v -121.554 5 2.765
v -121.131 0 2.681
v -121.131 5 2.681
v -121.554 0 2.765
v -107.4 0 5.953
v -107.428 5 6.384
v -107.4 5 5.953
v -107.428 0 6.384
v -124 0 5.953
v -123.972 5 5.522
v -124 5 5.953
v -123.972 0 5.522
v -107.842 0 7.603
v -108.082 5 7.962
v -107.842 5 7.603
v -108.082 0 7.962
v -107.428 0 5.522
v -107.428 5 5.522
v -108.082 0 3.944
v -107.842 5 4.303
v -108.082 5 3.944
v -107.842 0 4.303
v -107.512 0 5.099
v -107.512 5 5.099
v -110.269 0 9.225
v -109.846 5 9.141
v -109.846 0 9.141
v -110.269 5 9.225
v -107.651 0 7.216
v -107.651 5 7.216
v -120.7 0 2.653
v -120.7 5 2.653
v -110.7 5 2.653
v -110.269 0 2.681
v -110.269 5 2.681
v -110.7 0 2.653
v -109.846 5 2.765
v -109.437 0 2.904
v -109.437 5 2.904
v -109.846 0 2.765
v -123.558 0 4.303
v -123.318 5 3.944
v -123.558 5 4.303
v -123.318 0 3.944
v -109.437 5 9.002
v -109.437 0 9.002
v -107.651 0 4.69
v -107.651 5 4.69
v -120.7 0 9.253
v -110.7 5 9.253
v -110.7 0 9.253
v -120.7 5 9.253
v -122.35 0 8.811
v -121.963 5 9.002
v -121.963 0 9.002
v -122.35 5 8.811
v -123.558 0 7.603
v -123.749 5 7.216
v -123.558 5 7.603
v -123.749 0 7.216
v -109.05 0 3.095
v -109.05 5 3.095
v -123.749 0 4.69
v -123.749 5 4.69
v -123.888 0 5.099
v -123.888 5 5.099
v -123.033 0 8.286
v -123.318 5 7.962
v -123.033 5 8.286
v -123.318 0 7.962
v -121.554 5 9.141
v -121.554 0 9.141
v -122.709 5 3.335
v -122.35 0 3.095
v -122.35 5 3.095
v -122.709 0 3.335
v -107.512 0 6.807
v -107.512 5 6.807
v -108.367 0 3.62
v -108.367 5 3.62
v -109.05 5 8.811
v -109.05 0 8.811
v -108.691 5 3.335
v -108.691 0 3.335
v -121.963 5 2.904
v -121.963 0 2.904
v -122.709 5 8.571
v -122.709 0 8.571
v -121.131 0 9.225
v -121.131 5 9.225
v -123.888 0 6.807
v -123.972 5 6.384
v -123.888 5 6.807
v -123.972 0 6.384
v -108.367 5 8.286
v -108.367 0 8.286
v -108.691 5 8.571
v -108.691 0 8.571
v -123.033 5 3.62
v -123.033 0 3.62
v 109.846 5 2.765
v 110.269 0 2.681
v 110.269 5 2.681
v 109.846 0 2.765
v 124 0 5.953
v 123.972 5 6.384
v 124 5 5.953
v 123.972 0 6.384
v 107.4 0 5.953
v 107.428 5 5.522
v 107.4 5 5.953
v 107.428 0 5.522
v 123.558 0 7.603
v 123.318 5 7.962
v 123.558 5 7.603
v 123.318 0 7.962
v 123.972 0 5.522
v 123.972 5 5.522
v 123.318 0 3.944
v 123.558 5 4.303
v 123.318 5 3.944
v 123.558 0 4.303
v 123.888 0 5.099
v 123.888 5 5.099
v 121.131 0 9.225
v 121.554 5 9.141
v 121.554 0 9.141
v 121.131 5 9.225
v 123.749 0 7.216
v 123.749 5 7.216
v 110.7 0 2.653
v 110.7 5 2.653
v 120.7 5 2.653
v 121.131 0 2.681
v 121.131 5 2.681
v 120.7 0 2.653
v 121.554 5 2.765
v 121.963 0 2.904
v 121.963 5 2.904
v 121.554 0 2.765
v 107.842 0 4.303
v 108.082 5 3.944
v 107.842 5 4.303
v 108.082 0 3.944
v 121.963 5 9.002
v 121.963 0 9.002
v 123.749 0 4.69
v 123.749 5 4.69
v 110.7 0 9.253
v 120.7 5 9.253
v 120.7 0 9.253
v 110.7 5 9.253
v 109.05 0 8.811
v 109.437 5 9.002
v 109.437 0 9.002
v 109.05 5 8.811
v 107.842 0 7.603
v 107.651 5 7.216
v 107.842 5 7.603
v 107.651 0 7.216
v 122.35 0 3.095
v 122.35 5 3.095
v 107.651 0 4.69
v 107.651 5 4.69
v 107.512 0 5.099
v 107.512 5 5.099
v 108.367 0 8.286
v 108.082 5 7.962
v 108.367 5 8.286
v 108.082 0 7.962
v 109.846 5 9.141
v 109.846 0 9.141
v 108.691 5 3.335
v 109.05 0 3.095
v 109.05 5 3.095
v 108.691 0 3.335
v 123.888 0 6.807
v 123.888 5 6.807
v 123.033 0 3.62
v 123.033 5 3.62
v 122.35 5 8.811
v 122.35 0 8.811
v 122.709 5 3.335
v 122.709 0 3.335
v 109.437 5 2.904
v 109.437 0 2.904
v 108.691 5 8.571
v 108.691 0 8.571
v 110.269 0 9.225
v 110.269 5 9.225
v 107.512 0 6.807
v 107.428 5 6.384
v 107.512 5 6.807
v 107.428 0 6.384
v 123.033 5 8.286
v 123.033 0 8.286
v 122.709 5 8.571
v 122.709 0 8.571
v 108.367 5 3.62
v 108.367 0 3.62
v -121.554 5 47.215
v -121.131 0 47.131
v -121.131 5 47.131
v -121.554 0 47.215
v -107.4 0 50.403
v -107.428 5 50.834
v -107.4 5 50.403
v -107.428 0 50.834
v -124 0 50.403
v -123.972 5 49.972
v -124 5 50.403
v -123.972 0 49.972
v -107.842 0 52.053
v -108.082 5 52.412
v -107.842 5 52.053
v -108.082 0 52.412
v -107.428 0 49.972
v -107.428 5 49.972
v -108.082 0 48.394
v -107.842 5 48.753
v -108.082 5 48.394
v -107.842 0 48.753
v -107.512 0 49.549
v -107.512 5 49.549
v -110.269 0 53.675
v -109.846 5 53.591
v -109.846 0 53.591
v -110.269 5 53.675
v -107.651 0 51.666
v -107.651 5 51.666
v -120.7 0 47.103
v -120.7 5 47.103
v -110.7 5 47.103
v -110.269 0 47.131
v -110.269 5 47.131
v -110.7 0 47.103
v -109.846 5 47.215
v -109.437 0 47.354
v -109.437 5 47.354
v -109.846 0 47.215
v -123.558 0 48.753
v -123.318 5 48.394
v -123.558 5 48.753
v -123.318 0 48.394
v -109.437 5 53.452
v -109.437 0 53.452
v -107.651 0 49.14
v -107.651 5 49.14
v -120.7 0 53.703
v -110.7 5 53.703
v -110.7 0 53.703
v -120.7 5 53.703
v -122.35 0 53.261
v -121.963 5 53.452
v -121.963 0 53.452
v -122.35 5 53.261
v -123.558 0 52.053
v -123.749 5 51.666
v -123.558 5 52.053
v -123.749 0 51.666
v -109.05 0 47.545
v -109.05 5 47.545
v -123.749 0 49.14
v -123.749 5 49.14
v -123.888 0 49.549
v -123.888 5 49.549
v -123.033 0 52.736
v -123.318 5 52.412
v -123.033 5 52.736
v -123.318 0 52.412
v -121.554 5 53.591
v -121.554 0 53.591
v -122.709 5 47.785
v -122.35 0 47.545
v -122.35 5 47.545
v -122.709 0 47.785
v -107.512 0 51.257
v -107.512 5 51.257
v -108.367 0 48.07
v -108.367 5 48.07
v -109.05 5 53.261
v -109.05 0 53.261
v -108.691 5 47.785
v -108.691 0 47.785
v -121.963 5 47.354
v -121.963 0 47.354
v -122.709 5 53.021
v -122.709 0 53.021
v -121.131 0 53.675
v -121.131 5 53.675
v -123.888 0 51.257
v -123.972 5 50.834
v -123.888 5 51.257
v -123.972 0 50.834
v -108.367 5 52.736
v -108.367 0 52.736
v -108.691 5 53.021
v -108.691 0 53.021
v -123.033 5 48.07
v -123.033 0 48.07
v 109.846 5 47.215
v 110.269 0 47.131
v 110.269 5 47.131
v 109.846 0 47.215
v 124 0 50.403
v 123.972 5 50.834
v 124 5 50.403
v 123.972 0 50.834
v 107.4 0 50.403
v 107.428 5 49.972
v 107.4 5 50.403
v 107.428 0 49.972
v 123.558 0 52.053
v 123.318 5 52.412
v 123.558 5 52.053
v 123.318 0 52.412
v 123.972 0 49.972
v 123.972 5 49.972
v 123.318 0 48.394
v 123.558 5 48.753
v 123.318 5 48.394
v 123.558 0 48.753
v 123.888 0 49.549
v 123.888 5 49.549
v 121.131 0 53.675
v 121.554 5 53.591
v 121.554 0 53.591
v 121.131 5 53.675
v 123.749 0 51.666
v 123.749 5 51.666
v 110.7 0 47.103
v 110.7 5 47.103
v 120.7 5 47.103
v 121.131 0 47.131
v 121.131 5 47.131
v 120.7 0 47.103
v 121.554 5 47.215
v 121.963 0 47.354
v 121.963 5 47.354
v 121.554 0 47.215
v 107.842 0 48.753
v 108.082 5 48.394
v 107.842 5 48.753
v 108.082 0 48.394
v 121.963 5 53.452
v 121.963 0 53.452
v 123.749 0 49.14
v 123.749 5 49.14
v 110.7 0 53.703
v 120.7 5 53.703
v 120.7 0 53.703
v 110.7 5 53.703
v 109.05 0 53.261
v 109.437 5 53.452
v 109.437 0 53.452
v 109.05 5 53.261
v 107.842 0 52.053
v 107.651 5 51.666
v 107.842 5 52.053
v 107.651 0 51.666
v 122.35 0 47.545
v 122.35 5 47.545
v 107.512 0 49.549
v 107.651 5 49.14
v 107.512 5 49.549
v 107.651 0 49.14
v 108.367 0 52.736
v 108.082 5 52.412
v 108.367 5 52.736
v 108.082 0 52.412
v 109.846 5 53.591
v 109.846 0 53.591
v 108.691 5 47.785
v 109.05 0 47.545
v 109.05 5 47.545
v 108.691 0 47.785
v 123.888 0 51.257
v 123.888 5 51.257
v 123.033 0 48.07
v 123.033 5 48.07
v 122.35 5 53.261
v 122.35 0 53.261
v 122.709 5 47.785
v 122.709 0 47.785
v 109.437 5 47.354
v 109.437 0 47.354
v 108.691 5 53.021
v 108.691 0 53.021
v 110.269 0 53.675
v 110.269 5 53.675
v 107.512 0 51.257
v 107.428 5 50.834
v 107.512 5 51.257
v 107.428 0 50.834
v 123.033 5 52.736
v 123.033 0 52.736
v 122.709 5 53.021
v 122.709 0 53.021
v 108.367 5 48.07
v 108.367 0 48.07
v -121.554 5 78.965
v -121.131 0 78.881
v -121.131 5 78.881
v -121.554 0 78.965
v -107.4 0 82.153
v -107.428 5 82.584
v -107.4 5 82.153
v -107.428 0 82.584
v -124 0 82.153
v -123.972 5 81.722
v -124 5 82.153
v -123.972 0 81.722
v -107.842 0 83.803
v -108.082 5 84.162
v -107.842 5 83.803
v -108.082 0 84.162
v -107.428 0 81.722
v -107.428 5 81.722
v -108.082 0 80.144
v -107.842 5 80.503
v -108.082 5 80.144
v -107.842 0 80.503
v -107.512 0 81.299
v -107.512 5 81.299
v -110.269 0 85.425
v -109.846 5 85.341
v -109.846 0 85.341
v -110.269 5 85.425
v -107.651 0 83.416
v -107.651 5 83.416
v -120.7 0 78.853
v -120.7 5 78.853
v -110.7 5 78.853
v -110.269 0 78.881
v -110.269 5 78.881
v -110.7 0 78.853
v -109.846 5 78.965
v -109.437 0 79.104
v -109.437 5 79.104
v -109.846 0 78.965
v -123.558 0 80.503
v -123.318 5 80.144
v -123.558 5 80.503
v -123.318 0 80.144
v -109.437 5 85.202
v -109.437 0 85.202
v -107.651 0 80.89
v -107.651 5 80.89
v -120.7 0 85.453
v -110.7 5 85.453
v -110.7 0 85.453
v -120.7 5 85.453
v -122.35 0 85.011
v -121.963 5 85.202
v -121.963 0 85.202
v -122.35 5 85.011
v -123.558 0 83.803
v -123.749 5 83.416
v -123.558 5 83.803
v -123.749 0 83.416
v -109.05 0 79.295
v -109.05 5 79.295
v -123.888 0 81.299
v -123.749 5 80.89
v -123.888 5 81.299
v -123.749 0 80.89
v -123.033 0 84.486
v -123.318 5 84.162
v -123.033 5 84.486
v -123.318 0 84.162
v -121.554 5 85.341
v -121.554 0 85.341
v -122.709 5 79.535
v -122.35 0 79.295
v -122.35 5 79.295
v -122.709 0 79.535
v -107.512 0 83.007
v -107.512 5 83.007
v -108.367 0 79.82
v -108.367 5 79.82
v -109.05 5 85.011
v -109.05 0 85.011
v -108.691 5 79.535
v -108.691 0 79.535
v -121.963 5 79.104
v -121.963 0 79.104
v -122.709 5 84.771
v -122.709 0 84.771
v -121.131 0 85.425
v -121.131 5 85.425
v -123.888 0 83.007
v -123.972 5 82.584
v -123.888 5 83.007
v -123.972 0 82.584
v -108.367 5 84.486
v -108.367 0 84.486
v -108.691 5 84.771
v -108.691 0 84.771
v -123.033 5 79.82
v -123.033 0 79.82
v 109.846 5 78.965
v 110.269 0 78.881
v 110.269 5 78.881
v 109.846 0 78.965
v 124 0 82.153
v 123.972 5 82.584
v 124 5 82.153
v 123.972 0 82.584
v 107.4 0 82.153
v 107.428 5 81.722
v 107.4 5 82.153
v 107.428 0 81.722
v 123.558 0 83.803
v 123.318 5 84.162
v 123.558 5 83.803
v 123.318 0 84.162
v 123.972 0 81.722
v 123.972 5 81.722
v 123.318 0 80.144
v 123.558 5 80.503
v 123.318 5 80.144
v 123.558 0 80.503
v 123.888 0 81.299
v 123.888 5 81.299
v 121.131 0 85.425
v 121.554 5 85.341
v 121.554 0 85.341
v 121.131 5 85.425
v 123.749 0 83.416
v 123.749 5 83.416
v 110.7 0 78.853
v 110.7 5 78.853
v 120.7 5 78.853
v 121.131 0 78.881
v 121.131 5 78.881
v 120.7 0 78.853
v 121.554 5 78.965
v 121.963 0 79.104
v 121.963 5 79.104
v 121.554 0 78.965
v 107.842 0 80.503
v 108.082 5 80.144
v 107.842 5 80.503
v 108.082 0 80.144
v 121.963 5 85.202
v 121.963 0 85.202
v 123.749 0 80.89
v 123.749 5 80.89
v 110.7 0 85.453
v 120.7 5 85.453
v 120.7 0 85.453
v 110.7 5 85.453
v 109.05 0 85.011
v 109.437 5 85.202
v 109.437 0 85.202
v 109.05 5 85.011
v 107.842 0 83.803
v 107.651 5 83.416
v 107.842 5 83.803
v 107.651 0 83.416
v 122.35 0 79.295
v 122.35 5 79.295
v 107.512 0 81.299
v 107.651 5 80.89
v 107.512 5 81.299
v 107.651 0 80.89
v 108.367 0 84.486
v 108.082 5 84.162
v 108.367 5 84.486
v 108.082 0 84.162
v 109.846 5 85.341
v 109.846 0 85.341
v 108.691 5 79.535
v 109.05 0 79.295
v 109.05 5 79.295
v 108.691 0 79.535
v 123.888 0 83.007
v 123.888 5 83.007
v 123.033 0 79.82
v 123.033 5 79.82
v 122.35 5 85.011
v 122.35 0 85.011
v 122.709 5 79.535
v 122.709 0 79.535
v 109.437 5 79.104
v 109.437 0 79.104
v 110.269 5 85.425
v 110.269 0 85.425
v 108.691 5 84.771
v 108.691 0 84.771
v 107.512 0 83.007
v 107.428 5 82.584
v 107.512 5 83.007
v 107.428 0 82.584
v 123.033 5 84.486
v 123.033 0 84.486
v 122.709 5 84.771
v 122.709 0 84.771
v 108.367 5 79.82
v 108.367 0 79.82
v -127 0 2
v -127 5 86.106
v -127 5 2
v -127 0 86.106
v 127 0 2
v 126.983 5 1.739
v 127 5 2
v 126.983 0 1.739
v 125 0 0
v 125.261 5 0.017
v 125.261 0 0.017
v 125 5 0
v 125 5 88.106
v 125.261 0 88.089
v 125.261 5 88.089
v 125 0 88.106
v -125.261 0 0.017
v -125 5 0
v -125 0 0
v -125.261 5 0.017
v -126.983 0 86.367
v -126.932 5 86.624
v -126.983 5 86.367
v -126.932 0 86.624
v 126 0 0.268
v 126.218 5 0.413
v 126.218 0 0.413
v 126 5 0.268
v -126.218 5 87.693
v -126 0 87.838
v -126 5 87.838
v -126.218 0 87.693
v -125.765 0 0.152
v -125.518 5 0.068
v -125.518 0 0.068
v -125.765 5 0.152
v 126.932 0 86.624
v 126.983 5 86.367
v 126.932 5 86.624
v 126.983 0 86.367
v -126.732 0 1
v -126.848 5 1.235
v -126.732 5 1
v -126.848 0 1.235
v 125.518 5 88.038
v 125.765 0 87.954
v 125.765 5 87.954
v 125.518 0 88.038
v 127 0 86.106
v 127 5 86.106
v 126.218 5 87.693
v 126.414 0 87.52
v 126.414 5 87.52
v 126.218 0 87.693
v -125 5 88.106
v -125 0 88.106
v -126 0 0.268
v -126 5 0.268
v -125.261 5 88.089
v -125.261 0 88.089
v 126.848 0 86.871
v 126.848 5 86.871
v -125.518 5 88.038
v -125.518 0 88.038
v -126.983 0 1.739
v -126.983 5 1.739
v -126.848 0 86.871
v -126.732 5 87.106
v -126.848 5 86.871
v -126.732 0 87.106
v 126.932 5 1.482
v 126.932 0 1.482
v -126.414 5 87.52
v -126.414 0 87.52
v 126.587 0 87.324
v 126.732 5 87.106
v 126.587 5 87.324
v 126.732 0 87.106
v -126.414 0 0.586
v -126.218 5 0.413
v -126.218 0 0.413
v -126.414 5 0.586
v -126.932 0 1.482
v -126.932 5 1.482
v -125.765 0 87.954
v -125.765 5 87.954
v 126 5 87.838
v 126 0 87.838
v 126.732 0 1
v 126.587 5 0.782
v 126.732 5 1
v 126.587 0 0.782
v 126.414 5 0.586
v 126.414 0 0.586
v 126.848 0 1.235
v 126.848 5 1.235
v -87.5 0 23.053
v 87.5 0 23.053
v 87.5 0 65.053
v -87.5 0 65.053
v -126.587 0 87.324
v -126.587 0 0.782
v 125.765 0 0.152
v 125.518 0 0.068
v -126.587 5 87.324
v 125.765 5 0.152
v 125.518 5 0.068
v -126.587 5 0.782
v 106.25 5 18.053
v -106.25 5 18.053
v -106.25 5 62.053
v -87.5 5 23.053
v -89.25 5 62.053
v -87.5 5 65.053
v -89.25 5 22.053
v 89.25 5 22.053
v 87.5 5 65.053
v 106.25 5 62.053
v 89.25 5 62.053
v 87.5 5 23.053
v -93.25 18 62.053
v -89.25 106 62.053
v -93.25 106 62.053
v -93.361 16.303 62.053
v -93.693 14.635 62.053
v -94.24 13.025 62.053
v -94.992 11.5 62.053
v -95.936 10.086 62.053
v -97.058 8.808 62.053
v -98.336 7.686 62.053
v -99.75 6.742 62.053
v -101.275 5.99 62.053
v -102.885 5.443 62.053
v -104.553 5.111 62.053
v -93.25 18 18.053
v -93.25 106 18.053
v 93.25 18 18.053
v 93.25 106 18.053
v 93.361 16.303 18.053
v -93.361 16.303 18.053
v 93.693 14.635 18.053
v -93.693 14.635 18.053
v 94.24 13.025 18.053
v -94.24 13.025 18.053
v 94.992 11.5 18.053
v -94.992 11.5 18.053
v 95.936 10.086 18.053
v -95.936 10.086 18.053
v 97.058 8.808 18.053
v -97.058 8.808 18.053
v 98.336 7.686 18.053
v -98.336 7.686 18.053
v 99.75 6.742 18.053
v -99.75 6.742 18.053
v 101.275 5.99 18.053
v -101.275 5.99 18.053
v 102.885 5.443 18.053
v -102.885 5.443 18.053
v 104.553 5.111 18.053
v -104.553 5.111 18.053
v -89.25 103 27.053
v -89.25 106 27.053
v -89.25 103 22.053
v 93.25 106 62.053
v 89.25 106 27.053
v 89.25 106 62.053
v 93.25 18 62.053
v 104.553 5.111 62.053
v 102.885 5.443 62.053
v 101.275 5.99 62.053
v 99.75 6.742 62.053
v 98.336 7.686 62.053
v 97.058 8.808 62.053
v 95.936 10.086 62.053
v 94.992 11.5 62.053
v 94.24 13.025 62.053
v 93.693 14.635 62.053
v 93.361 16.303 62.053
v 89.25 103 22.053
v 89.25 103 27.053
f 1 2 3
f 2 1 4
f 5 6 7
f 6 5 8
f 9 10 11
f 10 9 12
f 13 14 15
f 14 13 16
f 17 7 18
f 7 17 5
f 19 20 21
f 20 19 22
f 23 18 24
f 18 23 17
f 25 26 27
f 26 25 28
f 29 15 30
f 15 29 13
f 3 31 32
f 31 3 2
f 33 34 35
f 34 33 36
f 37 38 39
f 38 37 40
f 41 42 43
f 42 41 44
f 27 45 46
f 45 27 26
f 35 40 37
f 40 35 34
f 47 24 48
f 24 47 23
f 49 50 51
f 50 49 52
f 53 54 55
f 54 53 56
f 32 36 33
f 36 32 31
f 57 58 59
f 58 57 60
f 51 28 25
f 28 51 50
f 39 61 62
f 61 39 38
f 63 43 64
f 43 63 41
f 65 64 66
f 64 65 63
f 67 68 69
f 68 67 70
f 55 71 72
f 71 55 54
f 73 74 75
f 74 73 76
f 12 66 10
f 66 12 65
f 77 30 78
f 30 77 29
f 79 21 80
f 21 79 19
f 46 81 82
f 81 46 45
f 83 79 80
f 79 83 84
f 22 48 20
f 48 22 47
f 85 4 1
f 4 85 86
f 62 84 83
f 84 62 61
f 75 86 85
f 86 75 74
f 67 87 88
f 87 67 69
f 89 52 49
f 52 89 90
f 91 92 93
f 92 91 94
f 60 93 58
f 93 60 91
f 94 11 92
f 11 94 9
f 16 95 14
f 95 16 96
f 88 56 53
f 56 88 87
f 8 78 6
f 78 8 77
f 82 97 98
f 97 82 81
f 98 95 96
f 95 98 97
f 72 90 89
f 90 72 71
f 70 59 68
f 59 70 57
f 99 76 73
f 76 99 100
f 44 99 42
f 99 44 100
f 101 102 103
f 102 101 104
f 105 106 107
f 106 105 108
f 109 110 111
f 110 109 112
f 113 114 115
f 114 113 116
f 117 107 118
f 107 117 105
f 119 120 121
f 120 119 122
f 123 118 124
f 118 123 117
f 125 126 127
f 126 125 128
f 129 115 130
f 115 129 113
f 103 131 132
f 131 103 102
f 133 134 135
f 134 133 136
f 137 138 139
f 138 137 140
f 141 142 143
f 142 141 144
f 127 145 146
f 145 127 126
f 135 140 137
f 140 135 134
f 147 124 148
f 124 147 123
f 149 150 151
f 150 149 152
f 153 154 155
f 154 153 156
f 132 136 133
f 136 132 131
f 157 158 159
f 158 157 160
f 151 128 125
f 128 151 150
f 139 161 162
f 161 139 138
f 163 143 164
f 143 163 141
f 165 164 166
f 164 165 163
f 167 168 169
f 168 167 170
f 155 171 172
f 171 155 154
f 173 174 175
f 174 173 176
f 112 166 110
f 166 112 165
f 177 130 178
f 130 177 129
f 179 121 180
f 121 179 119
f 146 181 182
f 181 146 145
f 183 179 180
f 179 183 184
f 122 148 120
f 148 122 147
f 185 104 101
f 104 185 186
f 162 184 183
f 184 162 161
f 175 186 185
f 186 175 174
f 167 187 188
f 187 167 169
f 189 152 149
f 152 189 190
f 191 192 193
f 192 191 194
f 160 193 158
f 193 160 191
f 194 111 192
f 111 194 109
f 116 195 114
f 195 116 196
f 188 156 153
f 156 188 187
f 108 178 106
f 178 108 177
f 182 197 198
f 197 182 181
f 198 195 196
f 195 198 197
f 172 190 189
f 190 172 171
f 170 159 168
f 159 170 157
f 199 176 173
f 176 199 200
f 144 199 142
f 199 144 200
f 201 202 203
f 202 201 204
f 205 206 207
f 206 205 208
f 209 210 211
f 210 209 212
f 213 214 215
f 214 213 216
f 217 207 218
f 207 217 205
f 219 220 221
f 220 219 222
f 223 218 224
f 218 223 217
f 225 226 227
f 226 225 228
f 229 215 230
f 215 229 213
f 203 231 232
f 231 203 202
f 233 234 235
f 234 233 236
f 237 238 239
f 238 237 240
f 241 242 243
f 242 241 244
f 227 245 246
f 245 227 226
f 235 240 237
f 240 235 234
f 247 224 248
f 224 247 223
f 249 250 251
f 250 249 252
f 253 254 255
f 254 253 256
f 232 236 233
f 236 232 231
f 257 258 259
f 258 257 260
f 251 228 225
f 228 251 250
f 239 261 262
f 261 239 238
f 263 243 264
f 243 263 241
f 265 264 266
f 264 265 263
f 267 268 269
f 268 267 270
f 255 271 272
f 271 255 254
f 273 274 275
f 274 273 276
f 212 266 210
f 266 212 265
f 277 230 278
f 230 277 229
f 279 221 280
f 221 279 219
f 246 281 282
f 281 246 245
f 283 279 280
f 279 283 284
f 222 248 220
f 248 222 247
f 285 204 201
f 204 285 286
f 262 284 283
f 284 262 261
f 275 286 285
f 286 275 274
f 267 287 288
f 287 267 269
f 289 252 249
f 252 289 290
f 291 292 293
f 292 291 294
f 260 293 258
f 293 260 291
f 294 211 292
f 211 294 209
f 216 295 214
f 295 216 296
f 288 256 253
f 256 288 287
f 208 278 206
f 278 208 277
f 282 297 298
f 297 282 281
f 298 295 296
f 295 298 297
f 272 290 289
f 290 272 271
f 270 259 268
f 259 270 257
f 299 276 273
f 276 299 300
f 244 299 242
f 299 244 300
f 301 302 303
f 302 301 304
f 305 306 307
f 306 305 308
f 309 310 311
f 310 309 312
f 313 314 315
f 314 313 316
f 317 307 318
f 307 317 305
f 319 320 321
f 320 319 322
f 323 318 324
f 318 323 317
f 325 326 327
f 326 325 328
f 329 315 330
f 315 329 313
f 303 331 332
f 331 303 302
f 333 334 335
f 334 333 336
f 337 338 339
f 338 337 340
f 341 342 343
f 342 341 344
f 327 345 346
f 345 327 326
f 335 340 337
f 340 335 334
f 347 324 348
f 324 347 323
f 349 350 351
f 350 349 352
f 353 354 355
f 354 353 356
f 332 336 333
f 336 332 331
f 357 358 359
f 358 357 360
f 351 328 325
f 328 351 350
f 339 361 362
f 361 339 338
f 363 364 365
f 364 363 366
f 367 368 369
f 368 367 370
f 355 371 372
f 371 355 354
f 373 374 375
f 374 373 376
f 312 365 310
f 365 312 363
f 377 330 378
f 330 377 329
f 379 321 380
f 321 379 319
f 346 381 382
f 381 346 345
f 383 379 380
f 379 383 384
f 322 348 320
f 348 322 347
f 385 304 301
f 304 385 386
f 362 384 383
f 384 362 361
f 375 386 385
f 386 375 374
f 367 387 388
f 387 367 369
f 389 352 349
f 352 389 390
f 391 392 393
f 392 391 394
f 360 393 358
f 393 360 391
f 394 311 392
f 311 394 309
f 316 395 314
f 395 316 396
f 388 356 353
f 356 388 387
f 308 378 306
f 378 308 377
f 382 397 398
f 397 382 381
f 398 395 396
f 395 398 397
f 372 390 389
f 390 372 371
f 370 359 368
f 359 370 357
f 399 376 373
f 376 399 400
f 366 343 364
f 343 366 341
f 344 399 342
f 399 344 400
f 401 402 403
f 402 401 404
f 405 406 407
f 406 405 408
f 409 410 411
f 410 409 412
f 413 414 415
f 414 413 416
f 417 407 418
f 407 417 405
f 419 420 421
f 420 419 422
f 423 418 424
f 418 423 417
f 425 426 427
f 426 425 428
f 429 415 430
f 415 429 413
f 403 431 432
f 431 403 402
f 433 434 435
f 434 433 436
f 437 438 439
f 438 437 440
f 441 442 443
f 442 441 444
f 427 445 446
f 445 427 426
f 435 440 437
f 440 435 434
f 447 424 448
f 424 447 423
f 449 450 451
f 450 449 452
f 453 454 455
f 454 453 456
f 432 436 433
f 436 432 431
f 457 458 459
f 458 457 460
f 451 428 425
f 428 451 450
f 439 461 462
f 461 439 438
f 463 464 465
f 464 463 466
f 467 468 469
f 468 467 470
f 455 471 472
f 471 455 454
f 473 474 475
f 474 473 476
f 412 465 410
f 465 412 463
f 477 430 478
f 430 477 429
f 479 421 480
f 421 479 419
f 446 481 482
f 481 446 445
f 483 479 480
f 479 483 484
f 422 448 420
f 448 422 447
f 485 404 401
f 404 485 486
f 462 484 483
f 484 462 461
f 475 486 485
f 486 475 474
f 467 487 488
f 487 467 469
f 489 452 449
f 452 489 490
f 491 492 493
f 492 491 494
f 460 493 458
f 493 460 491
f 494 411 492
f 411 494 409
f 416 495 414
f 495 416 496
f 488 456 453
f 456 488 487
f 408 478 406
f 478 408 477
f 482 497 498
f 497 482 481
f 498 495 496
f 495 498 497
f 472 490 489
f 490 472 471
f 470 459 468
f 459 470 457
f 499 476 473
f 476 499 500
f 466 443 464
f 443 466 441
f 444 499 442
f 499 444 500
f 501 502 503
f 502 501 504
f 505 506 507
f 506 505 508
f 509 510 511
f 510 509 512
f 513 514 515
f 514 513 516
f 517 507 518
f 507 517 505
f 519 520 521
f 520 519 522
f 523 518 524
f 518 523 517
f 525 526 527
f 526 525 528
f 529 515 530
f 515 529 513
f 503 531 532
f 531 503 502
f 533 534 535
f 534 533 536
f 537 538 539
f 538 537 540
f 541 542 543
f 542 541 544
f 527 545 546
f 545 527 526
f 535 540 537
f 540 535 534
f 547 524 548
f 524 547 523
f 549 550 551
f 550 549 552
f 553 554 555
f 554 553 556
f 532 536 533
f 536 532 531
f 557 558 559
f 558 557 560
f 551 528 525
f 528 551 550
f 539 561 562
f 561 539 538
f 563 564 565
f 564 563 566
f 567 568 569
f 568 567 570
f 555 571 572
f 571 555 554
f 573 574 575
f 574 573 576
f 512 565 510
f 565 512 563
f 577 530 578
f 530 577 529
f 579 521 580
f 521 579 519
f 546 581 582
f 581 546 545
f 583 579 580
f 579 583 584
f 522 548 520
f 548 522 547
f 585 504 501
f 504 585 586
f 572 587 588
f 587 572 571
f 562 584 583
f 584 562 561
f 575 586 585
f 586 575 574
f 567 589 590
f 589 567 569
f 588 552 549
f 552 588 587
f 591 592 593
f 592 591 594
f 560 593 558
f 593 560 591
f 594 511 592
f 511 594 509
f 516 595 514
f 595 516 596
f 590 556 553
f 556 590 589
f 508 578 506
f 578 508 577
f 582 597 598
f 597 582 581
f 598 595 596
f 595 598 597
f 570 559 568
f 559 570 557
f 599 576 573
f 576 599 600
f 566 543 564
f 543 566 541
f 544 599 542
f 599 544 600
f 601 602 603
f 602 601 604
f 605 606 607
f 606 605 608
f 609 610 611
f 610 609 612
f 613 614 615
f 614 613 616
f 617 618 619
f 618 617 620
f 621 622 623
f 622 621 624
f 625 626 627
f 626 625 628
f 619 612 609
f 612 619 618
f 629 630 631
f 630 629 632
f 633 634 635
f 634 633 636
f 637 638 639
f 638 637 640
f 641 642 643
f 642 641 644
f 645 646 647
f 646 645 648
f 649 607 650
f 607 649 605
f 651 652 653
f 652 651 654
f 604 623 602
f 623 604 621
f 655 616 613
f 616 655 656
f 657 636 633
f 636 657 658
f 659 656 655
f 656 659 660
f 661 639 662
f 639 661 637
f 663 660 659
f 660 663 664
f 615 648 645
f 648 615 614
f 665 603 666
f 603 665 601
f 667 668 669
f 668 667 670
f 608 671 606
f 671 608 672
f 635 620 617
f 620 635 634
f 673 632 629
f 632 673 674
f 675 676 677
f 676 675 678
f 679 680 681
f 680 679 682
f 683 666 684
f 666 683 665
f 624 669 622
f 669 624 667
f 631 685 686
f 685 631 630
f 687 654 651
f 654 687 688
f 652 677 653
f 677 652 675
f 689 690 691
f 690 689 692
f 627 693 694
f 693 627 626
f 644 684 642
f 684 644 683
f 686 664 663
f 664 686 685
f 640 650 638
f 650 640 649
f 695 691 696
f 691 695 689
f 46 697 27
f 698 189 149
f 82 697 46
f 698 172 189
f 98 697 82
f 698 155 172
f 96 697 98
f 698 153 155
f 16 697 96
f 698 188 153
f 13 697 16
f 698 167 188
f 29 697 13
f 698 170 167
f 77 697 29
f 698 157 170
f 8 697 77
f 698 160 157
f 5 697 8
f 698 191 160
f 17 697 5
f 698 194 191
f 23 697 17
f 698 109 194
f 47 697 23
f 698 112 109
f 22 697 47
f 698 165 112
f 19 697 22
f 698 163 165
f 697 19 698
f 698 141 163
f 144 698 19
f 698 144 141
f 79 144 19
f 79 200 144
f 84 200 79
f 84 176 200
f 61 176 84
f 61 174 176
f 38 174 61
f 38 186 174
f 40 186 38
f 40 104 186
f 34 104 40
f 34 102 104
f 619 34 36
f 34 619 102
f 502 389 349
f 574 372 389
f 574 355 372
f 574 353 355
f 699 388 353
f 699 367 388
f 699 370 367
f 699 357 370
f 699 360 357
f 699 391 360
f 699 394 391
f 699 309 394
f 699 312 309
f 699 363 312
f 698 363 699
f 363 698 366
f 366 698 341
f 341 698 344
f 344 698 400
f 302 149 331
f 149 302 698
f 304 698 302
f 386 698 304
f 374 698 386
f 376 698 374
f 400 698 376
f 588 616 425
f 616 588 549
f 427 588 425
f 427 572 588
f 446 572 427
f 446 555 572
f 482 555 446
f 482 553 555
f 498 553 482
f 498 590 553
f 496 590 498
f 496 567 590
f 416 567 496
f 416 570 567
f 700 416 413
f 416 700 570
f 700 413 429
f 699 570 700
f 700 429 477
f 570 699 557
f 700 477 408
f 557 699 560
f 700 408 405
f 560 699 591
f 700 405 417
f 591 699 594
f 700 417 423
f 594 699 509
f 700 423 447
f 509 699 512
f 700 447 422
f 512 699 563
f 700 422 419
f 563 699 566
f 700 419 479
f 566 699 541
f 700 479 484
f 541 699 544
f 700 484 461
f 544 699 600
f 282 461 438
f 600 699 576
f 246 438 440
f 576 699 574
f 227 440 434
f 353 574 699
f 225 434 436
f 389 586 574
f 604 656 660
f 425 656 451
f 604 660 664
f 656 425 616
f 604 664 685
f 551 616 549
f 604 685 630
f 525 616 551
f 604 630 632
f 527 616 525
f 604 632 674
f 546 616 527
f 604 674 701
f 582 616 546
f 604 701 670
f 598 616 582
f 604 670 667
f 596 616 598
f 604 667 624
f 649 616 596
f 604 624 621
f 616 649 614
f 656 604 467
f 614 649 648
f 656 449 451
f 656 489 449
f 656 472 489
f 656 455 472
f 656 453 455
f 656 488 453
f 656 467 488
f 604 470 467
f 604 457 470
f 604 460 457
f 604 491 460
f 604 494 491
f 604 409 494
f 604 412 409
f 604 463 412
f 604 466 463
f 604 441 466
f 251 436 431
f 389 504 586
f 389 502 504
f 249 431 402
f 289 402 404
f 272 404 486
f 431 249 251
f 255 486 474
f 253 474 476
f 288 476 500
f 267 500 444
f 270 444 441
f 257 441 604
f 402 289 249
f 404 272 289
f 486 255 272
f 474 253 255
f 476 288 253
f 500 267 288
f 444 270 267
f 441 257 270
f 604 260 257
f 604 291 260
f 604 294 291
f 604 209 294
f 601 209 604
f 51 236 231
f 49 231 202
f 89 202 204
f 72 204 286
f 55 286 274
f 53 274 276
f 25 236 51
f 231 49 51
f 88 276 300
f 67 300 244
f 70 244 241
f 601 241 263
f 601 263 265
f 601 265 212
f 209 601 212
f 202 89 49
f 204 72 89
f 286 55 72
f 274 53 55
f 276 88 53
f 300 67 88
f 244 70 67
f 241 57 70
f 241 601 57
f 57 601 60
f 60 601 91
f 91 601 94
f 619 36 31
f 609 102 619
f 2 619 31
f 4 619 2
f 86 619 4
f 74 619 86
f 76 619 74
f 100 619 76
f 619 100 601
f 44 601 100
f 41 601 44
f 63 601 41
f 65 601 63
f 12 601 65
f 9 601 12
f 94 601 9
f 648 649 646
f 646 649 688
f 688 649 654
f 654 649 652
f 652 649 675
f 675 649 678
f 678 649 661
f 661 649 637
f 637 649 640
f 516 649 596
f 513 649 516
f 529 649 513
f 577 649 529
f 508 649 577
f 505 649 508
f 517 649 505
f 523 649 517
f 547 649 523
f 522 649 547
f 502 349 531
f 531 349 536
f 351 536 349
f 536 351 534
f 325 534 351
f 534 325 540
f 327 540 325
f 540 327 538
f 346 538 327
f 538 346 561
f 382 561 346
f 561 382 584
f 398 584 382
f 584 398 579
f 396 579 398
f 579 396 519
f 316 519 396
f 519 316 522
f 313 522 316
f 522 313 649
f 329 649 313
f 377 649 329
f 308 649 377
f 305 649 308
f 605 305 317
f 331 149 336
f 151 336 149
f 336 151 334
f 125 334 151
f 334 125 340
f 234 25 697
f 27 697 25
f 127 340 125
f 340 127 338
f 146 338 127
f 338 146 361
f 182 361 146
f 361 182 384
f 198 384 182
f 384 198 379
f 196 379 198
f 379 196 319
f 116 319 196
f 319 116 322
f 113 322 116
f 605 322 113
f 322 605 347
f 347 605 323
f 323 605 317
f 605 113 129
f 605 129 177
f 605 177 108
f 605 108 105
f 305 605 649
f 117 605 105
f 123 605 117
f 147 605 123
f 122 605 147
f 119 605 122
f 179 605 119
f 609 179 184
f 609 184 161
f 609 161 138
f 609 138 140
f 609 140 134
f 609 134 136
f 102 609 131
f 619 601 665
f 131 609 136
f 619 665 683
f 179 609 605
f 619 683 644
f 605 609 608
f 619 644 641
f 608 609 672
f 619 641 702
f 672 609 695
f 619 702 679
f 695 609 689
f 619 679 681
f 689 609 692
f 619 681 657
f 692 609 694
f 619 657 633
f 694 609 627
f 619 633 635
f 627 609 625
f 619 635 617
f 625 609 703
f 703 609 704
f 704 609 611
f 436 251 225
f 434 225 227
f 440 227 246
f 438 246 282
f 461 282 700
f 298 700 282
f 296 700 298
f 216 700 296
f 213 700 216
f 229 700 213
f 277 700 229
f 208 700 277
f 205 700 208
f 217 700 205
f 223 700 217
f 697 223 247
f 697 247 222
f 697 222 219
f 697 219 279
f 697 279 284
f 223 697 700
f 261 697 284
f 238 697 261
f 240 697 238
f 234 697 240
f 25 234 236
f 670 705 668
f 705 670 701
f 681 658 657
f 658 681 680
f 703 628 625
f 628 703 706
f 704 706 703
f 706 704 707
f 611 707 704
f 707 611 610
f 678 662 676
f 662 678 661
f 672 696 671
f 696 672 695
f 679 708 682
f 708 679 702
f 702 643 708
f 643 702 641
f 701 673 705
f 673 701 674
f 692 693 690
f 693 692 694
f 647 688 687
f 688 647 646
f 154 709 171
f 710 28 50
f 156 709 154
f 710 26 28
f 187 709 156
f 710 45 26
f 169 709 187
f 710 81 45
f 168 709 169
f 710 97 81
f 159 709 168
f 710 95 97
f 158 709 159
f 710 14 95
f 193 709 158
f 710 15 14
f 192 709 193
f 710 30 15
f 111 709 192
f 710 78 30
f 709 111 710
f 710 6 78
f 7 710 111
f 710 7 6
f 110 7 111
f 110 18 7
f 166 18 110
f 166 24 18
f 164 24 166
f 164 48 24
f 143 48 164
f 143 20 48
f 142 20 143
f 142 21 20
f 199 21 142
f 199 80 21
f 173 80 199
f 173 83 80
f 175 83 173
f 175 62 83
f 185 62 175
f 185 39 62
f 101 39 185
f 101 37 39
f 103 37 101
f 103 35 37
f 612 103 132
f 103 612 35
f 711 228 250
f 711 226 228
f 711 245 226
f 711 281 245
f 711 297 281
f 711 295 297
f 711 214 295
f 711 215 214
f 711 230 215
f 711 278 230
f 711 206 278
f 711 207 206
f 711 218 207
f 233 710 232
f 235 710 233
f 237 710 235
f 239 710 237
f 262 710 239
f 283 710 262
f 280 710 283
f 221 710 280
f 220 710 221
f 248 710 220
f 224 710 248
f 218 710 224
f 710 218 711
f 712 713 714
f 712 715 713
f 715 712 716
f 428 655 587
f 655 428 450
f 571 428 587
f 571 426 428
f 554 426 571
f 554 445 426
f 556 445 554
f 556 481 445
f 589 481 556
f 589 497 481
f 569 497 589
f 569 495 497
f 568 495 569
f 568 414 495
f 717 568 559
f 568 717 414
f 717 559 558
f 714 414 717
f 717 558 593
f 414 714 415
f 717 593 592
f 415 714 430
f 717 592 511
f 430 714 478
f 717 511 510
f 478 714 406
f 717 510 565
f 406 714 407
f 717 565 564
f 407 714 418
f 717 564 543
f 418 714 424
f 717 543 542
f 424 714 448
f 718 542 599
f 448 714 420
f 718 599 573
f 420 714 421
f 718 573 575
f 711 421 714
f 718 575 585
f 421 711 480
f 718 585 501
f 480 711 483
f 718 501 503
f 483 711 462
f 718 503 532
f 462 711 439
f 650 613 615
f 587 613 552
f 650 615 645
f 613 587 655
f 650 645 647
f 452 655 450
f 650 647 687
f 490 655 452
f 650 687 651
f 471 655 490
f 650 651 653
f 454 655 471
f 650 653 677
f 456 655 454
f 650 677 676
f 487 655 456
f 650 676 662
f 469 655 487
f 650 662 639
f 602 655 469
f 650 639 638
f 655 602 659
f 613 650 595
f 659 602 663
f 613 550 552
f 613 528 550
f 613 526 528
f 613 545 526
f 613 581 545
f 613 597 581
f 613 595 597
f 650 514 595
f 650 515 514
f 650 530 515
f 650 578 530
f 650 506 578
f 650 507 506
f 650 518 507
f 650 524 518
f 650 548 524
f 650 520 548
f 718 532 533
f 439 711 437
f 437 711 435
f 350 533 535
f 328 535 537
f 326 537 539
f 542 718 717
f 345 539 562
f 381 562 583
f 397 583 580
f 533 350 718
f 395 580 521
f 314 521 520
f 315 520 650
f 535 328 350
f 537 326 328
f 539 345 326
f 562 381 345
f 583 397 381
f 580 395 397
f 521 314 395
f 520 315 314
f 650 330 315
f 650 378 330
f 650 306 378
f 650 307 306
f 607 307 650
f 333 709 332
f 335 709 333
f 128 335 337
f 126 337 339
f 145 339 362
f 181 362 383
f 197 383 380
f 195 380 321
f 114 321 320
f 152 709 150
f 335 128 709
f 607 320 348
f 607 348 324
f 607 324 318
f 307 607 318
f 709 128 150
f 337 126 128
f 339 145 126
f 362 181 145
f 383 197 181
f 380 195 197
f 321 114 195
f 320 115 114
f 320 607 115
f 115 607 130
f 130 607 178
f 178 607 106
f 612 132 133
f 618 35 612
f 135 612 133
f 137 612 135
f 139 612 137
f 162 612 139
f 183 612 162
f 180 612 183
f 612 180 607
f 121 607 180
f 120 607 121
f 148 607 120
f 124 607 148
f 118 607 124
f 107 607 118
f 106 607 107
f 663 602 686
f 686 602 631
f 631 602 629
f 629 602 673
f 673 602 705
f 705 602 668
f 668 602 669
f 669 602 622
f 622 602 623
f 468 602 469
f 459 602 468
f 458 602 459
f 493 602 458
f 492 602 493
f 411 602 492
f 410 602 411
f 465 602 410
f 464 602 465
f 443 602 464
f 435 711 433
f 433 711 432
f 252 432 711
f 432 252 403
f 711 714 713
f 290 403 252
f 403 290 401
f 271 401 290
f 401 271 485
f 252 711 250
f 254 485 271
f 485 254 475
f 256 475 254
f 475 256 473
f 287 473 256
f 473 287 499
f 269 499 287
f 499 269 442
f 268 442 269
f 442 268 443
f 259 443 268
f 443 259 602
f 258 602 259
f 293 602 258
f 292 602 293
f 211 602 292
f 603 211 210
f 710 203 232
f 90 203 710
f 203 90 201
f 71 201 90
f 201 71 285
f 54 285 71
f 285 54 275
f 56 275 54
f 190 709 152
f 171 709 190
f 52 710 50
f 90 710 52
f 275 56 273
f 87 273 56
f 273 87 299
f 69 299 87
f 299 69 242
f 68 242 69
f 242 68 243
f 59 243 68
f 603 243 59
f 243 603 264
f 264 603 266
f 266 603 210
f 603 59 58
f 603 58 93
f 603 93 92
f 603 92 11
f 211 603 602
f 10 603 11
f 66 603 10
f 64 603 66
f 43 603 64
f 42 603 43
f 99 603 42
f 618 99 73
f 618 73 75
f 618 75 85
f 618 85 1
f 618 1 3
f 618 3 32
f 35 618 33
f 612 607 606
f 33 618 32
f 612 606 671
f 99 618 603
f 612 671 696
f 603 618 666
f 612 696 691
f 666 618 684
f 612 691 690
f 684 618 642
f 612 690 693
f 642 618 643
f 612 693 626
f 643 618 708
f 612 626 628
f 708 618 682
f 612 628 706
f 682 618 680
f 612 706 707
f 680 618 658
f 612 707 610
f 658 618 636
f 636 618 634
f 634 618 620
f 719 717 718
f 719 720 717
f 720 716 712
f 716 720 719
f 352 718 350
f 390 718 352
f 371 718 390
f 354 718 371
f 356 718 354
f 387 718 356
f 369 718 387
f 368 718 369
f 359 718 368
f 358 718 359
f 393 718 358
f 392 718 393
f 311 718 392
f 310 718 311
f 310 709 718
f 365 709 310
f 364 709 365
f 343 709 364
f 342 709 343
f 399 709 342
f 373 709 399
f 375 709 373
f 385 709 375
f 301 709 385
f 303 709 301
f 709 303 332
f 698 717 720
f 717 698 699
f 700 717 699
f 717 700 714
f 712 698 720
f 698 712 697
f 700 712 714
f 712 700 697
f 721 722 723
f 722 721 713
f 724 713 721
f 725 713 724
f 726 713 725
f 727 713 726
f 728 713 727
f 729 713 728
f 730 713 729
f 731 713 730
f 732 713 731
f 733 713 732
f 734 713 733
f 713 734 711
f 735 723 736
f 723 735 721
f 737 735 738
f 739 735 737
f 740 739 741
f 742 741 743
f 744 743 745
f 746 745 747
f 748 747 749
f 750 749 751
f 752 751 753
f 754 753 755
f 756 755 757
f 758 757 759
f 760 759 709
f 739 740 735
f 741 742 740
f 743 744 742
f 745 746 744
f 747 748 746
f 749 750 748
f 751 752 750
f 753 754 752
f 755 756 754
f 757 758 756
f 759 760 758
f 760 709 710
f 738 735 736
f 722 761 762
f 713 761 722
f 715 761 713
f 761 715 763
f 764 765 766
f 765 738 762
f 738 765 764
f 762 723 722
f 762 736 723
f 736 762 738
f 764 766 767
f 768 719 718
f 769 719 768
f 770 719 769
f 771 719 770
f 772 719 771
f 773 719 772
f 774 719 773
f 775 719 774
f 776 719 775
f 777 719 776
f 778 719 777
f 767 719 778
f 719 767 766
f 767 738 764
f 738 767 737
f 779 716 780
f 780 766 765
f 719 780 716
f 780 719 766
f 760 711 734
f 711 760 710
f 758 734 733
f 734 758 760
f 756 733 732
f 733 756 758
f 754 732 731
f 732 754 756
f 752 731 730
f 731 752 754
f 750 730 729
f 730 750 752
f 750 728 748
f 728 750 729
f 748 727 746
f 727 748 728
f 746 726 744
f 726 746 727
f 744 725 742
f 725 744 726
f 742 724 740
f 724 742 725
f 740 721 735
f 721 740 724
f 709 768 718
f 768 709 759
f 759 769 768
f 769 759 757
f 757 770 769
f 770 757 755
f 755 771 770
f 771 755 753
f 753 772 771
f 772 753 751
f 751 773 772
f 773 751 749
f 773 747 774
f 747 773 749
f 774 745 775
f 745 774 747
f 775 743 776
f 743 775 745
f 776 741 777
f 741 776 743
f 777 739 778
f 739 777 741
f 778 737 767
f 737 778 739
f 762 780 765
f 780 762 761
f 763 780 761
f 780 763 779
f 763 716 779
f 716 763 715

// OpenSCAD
// Mounting bracket for a QuantAsylum QA403 audio analyzer in a 10" benchtop rack, 2U.
// Geometry comes from ../lib/rack10.scad; this file only holds the QA403 numbers.
//
//   * BNC face to the front, through an aperture 1 mm smaller than the unit on
//     every side. USB at the back.
//   * The unit is 44 mm tall, more than a 1U panel (43.65 mm), hence 2U; the
//     unit is vertically centred on the panel.
//   * Shelf with side fins and a low fixed lip across the rear of the shelf
//     that stops the unit sliding back when BNC cables are pushed on. The unit
//     is dropped in from above and lifted straight out.
//
// Dimensions from the QuantAsylum product page: 177 W x 44 H x 97 D mm
// (115 mm deep including the BNC connectors). Measure the unit to confirm.
//
// Print with the front panel face down on the bed (print_orientation = true).

use <../lib/rack10.scad>

/* [QA403] */
unit_w = 177;
unit_h = 44;
unit_d = 97;                // body only; the BNCs stick out through the aperture

/* [Bracket] */
rack_u = 2;
lip = 1;                    // panel overlaps the unit by this much on each side
side_clear = 0.75;          // clearance between unit and each side wall
rear_clear = 1.0;           // clearance between unit and the rear stop
shelf_t = 4;                // shelf thickness
wall_t = 4;                 // side wall thickness
wall_above_shelf = 40;      // side wall height above the shelf top
wall_bottom = 0.5;          // side walls extend down to this z (stiffens the shelf)
fillet_r = 13;              // fillet between the outside of each side wall and the panel
                            // (0: none); max ~13 before it reaches the mounting slots
rear_stop_t = 3;            // rear lip thickness
rear_stop_h = 5;            // rear lip height above the shelf (0 for none)

/* [Rendering] */
print_orientation = false;  // true: lay the bracket with the front panel on the bed
show_unit = false;          // ghost of the QA403 for checking fit
$fn = 48;

unit = [unit_w, unit_d, unit_h];

print_oriented(print_orientation) {
    shelf_bracket(unit, rack_u = rack_u, lip = lip,
                  side_clear = side_clear, rear_clear = rear_clear,
                  shelf_t = shelf_t, wall_t = wall_t,
                  wall_above_shelf = wall_above_shelf, wall_bottom = wall_bottom,
                  rear_stop_t = rear_stop_t, rear_stop_h = rear_stop_h,
                  fillet_r = fillet_r);
    if (show_unit) unit_ghost(unit, rack_u);
}
